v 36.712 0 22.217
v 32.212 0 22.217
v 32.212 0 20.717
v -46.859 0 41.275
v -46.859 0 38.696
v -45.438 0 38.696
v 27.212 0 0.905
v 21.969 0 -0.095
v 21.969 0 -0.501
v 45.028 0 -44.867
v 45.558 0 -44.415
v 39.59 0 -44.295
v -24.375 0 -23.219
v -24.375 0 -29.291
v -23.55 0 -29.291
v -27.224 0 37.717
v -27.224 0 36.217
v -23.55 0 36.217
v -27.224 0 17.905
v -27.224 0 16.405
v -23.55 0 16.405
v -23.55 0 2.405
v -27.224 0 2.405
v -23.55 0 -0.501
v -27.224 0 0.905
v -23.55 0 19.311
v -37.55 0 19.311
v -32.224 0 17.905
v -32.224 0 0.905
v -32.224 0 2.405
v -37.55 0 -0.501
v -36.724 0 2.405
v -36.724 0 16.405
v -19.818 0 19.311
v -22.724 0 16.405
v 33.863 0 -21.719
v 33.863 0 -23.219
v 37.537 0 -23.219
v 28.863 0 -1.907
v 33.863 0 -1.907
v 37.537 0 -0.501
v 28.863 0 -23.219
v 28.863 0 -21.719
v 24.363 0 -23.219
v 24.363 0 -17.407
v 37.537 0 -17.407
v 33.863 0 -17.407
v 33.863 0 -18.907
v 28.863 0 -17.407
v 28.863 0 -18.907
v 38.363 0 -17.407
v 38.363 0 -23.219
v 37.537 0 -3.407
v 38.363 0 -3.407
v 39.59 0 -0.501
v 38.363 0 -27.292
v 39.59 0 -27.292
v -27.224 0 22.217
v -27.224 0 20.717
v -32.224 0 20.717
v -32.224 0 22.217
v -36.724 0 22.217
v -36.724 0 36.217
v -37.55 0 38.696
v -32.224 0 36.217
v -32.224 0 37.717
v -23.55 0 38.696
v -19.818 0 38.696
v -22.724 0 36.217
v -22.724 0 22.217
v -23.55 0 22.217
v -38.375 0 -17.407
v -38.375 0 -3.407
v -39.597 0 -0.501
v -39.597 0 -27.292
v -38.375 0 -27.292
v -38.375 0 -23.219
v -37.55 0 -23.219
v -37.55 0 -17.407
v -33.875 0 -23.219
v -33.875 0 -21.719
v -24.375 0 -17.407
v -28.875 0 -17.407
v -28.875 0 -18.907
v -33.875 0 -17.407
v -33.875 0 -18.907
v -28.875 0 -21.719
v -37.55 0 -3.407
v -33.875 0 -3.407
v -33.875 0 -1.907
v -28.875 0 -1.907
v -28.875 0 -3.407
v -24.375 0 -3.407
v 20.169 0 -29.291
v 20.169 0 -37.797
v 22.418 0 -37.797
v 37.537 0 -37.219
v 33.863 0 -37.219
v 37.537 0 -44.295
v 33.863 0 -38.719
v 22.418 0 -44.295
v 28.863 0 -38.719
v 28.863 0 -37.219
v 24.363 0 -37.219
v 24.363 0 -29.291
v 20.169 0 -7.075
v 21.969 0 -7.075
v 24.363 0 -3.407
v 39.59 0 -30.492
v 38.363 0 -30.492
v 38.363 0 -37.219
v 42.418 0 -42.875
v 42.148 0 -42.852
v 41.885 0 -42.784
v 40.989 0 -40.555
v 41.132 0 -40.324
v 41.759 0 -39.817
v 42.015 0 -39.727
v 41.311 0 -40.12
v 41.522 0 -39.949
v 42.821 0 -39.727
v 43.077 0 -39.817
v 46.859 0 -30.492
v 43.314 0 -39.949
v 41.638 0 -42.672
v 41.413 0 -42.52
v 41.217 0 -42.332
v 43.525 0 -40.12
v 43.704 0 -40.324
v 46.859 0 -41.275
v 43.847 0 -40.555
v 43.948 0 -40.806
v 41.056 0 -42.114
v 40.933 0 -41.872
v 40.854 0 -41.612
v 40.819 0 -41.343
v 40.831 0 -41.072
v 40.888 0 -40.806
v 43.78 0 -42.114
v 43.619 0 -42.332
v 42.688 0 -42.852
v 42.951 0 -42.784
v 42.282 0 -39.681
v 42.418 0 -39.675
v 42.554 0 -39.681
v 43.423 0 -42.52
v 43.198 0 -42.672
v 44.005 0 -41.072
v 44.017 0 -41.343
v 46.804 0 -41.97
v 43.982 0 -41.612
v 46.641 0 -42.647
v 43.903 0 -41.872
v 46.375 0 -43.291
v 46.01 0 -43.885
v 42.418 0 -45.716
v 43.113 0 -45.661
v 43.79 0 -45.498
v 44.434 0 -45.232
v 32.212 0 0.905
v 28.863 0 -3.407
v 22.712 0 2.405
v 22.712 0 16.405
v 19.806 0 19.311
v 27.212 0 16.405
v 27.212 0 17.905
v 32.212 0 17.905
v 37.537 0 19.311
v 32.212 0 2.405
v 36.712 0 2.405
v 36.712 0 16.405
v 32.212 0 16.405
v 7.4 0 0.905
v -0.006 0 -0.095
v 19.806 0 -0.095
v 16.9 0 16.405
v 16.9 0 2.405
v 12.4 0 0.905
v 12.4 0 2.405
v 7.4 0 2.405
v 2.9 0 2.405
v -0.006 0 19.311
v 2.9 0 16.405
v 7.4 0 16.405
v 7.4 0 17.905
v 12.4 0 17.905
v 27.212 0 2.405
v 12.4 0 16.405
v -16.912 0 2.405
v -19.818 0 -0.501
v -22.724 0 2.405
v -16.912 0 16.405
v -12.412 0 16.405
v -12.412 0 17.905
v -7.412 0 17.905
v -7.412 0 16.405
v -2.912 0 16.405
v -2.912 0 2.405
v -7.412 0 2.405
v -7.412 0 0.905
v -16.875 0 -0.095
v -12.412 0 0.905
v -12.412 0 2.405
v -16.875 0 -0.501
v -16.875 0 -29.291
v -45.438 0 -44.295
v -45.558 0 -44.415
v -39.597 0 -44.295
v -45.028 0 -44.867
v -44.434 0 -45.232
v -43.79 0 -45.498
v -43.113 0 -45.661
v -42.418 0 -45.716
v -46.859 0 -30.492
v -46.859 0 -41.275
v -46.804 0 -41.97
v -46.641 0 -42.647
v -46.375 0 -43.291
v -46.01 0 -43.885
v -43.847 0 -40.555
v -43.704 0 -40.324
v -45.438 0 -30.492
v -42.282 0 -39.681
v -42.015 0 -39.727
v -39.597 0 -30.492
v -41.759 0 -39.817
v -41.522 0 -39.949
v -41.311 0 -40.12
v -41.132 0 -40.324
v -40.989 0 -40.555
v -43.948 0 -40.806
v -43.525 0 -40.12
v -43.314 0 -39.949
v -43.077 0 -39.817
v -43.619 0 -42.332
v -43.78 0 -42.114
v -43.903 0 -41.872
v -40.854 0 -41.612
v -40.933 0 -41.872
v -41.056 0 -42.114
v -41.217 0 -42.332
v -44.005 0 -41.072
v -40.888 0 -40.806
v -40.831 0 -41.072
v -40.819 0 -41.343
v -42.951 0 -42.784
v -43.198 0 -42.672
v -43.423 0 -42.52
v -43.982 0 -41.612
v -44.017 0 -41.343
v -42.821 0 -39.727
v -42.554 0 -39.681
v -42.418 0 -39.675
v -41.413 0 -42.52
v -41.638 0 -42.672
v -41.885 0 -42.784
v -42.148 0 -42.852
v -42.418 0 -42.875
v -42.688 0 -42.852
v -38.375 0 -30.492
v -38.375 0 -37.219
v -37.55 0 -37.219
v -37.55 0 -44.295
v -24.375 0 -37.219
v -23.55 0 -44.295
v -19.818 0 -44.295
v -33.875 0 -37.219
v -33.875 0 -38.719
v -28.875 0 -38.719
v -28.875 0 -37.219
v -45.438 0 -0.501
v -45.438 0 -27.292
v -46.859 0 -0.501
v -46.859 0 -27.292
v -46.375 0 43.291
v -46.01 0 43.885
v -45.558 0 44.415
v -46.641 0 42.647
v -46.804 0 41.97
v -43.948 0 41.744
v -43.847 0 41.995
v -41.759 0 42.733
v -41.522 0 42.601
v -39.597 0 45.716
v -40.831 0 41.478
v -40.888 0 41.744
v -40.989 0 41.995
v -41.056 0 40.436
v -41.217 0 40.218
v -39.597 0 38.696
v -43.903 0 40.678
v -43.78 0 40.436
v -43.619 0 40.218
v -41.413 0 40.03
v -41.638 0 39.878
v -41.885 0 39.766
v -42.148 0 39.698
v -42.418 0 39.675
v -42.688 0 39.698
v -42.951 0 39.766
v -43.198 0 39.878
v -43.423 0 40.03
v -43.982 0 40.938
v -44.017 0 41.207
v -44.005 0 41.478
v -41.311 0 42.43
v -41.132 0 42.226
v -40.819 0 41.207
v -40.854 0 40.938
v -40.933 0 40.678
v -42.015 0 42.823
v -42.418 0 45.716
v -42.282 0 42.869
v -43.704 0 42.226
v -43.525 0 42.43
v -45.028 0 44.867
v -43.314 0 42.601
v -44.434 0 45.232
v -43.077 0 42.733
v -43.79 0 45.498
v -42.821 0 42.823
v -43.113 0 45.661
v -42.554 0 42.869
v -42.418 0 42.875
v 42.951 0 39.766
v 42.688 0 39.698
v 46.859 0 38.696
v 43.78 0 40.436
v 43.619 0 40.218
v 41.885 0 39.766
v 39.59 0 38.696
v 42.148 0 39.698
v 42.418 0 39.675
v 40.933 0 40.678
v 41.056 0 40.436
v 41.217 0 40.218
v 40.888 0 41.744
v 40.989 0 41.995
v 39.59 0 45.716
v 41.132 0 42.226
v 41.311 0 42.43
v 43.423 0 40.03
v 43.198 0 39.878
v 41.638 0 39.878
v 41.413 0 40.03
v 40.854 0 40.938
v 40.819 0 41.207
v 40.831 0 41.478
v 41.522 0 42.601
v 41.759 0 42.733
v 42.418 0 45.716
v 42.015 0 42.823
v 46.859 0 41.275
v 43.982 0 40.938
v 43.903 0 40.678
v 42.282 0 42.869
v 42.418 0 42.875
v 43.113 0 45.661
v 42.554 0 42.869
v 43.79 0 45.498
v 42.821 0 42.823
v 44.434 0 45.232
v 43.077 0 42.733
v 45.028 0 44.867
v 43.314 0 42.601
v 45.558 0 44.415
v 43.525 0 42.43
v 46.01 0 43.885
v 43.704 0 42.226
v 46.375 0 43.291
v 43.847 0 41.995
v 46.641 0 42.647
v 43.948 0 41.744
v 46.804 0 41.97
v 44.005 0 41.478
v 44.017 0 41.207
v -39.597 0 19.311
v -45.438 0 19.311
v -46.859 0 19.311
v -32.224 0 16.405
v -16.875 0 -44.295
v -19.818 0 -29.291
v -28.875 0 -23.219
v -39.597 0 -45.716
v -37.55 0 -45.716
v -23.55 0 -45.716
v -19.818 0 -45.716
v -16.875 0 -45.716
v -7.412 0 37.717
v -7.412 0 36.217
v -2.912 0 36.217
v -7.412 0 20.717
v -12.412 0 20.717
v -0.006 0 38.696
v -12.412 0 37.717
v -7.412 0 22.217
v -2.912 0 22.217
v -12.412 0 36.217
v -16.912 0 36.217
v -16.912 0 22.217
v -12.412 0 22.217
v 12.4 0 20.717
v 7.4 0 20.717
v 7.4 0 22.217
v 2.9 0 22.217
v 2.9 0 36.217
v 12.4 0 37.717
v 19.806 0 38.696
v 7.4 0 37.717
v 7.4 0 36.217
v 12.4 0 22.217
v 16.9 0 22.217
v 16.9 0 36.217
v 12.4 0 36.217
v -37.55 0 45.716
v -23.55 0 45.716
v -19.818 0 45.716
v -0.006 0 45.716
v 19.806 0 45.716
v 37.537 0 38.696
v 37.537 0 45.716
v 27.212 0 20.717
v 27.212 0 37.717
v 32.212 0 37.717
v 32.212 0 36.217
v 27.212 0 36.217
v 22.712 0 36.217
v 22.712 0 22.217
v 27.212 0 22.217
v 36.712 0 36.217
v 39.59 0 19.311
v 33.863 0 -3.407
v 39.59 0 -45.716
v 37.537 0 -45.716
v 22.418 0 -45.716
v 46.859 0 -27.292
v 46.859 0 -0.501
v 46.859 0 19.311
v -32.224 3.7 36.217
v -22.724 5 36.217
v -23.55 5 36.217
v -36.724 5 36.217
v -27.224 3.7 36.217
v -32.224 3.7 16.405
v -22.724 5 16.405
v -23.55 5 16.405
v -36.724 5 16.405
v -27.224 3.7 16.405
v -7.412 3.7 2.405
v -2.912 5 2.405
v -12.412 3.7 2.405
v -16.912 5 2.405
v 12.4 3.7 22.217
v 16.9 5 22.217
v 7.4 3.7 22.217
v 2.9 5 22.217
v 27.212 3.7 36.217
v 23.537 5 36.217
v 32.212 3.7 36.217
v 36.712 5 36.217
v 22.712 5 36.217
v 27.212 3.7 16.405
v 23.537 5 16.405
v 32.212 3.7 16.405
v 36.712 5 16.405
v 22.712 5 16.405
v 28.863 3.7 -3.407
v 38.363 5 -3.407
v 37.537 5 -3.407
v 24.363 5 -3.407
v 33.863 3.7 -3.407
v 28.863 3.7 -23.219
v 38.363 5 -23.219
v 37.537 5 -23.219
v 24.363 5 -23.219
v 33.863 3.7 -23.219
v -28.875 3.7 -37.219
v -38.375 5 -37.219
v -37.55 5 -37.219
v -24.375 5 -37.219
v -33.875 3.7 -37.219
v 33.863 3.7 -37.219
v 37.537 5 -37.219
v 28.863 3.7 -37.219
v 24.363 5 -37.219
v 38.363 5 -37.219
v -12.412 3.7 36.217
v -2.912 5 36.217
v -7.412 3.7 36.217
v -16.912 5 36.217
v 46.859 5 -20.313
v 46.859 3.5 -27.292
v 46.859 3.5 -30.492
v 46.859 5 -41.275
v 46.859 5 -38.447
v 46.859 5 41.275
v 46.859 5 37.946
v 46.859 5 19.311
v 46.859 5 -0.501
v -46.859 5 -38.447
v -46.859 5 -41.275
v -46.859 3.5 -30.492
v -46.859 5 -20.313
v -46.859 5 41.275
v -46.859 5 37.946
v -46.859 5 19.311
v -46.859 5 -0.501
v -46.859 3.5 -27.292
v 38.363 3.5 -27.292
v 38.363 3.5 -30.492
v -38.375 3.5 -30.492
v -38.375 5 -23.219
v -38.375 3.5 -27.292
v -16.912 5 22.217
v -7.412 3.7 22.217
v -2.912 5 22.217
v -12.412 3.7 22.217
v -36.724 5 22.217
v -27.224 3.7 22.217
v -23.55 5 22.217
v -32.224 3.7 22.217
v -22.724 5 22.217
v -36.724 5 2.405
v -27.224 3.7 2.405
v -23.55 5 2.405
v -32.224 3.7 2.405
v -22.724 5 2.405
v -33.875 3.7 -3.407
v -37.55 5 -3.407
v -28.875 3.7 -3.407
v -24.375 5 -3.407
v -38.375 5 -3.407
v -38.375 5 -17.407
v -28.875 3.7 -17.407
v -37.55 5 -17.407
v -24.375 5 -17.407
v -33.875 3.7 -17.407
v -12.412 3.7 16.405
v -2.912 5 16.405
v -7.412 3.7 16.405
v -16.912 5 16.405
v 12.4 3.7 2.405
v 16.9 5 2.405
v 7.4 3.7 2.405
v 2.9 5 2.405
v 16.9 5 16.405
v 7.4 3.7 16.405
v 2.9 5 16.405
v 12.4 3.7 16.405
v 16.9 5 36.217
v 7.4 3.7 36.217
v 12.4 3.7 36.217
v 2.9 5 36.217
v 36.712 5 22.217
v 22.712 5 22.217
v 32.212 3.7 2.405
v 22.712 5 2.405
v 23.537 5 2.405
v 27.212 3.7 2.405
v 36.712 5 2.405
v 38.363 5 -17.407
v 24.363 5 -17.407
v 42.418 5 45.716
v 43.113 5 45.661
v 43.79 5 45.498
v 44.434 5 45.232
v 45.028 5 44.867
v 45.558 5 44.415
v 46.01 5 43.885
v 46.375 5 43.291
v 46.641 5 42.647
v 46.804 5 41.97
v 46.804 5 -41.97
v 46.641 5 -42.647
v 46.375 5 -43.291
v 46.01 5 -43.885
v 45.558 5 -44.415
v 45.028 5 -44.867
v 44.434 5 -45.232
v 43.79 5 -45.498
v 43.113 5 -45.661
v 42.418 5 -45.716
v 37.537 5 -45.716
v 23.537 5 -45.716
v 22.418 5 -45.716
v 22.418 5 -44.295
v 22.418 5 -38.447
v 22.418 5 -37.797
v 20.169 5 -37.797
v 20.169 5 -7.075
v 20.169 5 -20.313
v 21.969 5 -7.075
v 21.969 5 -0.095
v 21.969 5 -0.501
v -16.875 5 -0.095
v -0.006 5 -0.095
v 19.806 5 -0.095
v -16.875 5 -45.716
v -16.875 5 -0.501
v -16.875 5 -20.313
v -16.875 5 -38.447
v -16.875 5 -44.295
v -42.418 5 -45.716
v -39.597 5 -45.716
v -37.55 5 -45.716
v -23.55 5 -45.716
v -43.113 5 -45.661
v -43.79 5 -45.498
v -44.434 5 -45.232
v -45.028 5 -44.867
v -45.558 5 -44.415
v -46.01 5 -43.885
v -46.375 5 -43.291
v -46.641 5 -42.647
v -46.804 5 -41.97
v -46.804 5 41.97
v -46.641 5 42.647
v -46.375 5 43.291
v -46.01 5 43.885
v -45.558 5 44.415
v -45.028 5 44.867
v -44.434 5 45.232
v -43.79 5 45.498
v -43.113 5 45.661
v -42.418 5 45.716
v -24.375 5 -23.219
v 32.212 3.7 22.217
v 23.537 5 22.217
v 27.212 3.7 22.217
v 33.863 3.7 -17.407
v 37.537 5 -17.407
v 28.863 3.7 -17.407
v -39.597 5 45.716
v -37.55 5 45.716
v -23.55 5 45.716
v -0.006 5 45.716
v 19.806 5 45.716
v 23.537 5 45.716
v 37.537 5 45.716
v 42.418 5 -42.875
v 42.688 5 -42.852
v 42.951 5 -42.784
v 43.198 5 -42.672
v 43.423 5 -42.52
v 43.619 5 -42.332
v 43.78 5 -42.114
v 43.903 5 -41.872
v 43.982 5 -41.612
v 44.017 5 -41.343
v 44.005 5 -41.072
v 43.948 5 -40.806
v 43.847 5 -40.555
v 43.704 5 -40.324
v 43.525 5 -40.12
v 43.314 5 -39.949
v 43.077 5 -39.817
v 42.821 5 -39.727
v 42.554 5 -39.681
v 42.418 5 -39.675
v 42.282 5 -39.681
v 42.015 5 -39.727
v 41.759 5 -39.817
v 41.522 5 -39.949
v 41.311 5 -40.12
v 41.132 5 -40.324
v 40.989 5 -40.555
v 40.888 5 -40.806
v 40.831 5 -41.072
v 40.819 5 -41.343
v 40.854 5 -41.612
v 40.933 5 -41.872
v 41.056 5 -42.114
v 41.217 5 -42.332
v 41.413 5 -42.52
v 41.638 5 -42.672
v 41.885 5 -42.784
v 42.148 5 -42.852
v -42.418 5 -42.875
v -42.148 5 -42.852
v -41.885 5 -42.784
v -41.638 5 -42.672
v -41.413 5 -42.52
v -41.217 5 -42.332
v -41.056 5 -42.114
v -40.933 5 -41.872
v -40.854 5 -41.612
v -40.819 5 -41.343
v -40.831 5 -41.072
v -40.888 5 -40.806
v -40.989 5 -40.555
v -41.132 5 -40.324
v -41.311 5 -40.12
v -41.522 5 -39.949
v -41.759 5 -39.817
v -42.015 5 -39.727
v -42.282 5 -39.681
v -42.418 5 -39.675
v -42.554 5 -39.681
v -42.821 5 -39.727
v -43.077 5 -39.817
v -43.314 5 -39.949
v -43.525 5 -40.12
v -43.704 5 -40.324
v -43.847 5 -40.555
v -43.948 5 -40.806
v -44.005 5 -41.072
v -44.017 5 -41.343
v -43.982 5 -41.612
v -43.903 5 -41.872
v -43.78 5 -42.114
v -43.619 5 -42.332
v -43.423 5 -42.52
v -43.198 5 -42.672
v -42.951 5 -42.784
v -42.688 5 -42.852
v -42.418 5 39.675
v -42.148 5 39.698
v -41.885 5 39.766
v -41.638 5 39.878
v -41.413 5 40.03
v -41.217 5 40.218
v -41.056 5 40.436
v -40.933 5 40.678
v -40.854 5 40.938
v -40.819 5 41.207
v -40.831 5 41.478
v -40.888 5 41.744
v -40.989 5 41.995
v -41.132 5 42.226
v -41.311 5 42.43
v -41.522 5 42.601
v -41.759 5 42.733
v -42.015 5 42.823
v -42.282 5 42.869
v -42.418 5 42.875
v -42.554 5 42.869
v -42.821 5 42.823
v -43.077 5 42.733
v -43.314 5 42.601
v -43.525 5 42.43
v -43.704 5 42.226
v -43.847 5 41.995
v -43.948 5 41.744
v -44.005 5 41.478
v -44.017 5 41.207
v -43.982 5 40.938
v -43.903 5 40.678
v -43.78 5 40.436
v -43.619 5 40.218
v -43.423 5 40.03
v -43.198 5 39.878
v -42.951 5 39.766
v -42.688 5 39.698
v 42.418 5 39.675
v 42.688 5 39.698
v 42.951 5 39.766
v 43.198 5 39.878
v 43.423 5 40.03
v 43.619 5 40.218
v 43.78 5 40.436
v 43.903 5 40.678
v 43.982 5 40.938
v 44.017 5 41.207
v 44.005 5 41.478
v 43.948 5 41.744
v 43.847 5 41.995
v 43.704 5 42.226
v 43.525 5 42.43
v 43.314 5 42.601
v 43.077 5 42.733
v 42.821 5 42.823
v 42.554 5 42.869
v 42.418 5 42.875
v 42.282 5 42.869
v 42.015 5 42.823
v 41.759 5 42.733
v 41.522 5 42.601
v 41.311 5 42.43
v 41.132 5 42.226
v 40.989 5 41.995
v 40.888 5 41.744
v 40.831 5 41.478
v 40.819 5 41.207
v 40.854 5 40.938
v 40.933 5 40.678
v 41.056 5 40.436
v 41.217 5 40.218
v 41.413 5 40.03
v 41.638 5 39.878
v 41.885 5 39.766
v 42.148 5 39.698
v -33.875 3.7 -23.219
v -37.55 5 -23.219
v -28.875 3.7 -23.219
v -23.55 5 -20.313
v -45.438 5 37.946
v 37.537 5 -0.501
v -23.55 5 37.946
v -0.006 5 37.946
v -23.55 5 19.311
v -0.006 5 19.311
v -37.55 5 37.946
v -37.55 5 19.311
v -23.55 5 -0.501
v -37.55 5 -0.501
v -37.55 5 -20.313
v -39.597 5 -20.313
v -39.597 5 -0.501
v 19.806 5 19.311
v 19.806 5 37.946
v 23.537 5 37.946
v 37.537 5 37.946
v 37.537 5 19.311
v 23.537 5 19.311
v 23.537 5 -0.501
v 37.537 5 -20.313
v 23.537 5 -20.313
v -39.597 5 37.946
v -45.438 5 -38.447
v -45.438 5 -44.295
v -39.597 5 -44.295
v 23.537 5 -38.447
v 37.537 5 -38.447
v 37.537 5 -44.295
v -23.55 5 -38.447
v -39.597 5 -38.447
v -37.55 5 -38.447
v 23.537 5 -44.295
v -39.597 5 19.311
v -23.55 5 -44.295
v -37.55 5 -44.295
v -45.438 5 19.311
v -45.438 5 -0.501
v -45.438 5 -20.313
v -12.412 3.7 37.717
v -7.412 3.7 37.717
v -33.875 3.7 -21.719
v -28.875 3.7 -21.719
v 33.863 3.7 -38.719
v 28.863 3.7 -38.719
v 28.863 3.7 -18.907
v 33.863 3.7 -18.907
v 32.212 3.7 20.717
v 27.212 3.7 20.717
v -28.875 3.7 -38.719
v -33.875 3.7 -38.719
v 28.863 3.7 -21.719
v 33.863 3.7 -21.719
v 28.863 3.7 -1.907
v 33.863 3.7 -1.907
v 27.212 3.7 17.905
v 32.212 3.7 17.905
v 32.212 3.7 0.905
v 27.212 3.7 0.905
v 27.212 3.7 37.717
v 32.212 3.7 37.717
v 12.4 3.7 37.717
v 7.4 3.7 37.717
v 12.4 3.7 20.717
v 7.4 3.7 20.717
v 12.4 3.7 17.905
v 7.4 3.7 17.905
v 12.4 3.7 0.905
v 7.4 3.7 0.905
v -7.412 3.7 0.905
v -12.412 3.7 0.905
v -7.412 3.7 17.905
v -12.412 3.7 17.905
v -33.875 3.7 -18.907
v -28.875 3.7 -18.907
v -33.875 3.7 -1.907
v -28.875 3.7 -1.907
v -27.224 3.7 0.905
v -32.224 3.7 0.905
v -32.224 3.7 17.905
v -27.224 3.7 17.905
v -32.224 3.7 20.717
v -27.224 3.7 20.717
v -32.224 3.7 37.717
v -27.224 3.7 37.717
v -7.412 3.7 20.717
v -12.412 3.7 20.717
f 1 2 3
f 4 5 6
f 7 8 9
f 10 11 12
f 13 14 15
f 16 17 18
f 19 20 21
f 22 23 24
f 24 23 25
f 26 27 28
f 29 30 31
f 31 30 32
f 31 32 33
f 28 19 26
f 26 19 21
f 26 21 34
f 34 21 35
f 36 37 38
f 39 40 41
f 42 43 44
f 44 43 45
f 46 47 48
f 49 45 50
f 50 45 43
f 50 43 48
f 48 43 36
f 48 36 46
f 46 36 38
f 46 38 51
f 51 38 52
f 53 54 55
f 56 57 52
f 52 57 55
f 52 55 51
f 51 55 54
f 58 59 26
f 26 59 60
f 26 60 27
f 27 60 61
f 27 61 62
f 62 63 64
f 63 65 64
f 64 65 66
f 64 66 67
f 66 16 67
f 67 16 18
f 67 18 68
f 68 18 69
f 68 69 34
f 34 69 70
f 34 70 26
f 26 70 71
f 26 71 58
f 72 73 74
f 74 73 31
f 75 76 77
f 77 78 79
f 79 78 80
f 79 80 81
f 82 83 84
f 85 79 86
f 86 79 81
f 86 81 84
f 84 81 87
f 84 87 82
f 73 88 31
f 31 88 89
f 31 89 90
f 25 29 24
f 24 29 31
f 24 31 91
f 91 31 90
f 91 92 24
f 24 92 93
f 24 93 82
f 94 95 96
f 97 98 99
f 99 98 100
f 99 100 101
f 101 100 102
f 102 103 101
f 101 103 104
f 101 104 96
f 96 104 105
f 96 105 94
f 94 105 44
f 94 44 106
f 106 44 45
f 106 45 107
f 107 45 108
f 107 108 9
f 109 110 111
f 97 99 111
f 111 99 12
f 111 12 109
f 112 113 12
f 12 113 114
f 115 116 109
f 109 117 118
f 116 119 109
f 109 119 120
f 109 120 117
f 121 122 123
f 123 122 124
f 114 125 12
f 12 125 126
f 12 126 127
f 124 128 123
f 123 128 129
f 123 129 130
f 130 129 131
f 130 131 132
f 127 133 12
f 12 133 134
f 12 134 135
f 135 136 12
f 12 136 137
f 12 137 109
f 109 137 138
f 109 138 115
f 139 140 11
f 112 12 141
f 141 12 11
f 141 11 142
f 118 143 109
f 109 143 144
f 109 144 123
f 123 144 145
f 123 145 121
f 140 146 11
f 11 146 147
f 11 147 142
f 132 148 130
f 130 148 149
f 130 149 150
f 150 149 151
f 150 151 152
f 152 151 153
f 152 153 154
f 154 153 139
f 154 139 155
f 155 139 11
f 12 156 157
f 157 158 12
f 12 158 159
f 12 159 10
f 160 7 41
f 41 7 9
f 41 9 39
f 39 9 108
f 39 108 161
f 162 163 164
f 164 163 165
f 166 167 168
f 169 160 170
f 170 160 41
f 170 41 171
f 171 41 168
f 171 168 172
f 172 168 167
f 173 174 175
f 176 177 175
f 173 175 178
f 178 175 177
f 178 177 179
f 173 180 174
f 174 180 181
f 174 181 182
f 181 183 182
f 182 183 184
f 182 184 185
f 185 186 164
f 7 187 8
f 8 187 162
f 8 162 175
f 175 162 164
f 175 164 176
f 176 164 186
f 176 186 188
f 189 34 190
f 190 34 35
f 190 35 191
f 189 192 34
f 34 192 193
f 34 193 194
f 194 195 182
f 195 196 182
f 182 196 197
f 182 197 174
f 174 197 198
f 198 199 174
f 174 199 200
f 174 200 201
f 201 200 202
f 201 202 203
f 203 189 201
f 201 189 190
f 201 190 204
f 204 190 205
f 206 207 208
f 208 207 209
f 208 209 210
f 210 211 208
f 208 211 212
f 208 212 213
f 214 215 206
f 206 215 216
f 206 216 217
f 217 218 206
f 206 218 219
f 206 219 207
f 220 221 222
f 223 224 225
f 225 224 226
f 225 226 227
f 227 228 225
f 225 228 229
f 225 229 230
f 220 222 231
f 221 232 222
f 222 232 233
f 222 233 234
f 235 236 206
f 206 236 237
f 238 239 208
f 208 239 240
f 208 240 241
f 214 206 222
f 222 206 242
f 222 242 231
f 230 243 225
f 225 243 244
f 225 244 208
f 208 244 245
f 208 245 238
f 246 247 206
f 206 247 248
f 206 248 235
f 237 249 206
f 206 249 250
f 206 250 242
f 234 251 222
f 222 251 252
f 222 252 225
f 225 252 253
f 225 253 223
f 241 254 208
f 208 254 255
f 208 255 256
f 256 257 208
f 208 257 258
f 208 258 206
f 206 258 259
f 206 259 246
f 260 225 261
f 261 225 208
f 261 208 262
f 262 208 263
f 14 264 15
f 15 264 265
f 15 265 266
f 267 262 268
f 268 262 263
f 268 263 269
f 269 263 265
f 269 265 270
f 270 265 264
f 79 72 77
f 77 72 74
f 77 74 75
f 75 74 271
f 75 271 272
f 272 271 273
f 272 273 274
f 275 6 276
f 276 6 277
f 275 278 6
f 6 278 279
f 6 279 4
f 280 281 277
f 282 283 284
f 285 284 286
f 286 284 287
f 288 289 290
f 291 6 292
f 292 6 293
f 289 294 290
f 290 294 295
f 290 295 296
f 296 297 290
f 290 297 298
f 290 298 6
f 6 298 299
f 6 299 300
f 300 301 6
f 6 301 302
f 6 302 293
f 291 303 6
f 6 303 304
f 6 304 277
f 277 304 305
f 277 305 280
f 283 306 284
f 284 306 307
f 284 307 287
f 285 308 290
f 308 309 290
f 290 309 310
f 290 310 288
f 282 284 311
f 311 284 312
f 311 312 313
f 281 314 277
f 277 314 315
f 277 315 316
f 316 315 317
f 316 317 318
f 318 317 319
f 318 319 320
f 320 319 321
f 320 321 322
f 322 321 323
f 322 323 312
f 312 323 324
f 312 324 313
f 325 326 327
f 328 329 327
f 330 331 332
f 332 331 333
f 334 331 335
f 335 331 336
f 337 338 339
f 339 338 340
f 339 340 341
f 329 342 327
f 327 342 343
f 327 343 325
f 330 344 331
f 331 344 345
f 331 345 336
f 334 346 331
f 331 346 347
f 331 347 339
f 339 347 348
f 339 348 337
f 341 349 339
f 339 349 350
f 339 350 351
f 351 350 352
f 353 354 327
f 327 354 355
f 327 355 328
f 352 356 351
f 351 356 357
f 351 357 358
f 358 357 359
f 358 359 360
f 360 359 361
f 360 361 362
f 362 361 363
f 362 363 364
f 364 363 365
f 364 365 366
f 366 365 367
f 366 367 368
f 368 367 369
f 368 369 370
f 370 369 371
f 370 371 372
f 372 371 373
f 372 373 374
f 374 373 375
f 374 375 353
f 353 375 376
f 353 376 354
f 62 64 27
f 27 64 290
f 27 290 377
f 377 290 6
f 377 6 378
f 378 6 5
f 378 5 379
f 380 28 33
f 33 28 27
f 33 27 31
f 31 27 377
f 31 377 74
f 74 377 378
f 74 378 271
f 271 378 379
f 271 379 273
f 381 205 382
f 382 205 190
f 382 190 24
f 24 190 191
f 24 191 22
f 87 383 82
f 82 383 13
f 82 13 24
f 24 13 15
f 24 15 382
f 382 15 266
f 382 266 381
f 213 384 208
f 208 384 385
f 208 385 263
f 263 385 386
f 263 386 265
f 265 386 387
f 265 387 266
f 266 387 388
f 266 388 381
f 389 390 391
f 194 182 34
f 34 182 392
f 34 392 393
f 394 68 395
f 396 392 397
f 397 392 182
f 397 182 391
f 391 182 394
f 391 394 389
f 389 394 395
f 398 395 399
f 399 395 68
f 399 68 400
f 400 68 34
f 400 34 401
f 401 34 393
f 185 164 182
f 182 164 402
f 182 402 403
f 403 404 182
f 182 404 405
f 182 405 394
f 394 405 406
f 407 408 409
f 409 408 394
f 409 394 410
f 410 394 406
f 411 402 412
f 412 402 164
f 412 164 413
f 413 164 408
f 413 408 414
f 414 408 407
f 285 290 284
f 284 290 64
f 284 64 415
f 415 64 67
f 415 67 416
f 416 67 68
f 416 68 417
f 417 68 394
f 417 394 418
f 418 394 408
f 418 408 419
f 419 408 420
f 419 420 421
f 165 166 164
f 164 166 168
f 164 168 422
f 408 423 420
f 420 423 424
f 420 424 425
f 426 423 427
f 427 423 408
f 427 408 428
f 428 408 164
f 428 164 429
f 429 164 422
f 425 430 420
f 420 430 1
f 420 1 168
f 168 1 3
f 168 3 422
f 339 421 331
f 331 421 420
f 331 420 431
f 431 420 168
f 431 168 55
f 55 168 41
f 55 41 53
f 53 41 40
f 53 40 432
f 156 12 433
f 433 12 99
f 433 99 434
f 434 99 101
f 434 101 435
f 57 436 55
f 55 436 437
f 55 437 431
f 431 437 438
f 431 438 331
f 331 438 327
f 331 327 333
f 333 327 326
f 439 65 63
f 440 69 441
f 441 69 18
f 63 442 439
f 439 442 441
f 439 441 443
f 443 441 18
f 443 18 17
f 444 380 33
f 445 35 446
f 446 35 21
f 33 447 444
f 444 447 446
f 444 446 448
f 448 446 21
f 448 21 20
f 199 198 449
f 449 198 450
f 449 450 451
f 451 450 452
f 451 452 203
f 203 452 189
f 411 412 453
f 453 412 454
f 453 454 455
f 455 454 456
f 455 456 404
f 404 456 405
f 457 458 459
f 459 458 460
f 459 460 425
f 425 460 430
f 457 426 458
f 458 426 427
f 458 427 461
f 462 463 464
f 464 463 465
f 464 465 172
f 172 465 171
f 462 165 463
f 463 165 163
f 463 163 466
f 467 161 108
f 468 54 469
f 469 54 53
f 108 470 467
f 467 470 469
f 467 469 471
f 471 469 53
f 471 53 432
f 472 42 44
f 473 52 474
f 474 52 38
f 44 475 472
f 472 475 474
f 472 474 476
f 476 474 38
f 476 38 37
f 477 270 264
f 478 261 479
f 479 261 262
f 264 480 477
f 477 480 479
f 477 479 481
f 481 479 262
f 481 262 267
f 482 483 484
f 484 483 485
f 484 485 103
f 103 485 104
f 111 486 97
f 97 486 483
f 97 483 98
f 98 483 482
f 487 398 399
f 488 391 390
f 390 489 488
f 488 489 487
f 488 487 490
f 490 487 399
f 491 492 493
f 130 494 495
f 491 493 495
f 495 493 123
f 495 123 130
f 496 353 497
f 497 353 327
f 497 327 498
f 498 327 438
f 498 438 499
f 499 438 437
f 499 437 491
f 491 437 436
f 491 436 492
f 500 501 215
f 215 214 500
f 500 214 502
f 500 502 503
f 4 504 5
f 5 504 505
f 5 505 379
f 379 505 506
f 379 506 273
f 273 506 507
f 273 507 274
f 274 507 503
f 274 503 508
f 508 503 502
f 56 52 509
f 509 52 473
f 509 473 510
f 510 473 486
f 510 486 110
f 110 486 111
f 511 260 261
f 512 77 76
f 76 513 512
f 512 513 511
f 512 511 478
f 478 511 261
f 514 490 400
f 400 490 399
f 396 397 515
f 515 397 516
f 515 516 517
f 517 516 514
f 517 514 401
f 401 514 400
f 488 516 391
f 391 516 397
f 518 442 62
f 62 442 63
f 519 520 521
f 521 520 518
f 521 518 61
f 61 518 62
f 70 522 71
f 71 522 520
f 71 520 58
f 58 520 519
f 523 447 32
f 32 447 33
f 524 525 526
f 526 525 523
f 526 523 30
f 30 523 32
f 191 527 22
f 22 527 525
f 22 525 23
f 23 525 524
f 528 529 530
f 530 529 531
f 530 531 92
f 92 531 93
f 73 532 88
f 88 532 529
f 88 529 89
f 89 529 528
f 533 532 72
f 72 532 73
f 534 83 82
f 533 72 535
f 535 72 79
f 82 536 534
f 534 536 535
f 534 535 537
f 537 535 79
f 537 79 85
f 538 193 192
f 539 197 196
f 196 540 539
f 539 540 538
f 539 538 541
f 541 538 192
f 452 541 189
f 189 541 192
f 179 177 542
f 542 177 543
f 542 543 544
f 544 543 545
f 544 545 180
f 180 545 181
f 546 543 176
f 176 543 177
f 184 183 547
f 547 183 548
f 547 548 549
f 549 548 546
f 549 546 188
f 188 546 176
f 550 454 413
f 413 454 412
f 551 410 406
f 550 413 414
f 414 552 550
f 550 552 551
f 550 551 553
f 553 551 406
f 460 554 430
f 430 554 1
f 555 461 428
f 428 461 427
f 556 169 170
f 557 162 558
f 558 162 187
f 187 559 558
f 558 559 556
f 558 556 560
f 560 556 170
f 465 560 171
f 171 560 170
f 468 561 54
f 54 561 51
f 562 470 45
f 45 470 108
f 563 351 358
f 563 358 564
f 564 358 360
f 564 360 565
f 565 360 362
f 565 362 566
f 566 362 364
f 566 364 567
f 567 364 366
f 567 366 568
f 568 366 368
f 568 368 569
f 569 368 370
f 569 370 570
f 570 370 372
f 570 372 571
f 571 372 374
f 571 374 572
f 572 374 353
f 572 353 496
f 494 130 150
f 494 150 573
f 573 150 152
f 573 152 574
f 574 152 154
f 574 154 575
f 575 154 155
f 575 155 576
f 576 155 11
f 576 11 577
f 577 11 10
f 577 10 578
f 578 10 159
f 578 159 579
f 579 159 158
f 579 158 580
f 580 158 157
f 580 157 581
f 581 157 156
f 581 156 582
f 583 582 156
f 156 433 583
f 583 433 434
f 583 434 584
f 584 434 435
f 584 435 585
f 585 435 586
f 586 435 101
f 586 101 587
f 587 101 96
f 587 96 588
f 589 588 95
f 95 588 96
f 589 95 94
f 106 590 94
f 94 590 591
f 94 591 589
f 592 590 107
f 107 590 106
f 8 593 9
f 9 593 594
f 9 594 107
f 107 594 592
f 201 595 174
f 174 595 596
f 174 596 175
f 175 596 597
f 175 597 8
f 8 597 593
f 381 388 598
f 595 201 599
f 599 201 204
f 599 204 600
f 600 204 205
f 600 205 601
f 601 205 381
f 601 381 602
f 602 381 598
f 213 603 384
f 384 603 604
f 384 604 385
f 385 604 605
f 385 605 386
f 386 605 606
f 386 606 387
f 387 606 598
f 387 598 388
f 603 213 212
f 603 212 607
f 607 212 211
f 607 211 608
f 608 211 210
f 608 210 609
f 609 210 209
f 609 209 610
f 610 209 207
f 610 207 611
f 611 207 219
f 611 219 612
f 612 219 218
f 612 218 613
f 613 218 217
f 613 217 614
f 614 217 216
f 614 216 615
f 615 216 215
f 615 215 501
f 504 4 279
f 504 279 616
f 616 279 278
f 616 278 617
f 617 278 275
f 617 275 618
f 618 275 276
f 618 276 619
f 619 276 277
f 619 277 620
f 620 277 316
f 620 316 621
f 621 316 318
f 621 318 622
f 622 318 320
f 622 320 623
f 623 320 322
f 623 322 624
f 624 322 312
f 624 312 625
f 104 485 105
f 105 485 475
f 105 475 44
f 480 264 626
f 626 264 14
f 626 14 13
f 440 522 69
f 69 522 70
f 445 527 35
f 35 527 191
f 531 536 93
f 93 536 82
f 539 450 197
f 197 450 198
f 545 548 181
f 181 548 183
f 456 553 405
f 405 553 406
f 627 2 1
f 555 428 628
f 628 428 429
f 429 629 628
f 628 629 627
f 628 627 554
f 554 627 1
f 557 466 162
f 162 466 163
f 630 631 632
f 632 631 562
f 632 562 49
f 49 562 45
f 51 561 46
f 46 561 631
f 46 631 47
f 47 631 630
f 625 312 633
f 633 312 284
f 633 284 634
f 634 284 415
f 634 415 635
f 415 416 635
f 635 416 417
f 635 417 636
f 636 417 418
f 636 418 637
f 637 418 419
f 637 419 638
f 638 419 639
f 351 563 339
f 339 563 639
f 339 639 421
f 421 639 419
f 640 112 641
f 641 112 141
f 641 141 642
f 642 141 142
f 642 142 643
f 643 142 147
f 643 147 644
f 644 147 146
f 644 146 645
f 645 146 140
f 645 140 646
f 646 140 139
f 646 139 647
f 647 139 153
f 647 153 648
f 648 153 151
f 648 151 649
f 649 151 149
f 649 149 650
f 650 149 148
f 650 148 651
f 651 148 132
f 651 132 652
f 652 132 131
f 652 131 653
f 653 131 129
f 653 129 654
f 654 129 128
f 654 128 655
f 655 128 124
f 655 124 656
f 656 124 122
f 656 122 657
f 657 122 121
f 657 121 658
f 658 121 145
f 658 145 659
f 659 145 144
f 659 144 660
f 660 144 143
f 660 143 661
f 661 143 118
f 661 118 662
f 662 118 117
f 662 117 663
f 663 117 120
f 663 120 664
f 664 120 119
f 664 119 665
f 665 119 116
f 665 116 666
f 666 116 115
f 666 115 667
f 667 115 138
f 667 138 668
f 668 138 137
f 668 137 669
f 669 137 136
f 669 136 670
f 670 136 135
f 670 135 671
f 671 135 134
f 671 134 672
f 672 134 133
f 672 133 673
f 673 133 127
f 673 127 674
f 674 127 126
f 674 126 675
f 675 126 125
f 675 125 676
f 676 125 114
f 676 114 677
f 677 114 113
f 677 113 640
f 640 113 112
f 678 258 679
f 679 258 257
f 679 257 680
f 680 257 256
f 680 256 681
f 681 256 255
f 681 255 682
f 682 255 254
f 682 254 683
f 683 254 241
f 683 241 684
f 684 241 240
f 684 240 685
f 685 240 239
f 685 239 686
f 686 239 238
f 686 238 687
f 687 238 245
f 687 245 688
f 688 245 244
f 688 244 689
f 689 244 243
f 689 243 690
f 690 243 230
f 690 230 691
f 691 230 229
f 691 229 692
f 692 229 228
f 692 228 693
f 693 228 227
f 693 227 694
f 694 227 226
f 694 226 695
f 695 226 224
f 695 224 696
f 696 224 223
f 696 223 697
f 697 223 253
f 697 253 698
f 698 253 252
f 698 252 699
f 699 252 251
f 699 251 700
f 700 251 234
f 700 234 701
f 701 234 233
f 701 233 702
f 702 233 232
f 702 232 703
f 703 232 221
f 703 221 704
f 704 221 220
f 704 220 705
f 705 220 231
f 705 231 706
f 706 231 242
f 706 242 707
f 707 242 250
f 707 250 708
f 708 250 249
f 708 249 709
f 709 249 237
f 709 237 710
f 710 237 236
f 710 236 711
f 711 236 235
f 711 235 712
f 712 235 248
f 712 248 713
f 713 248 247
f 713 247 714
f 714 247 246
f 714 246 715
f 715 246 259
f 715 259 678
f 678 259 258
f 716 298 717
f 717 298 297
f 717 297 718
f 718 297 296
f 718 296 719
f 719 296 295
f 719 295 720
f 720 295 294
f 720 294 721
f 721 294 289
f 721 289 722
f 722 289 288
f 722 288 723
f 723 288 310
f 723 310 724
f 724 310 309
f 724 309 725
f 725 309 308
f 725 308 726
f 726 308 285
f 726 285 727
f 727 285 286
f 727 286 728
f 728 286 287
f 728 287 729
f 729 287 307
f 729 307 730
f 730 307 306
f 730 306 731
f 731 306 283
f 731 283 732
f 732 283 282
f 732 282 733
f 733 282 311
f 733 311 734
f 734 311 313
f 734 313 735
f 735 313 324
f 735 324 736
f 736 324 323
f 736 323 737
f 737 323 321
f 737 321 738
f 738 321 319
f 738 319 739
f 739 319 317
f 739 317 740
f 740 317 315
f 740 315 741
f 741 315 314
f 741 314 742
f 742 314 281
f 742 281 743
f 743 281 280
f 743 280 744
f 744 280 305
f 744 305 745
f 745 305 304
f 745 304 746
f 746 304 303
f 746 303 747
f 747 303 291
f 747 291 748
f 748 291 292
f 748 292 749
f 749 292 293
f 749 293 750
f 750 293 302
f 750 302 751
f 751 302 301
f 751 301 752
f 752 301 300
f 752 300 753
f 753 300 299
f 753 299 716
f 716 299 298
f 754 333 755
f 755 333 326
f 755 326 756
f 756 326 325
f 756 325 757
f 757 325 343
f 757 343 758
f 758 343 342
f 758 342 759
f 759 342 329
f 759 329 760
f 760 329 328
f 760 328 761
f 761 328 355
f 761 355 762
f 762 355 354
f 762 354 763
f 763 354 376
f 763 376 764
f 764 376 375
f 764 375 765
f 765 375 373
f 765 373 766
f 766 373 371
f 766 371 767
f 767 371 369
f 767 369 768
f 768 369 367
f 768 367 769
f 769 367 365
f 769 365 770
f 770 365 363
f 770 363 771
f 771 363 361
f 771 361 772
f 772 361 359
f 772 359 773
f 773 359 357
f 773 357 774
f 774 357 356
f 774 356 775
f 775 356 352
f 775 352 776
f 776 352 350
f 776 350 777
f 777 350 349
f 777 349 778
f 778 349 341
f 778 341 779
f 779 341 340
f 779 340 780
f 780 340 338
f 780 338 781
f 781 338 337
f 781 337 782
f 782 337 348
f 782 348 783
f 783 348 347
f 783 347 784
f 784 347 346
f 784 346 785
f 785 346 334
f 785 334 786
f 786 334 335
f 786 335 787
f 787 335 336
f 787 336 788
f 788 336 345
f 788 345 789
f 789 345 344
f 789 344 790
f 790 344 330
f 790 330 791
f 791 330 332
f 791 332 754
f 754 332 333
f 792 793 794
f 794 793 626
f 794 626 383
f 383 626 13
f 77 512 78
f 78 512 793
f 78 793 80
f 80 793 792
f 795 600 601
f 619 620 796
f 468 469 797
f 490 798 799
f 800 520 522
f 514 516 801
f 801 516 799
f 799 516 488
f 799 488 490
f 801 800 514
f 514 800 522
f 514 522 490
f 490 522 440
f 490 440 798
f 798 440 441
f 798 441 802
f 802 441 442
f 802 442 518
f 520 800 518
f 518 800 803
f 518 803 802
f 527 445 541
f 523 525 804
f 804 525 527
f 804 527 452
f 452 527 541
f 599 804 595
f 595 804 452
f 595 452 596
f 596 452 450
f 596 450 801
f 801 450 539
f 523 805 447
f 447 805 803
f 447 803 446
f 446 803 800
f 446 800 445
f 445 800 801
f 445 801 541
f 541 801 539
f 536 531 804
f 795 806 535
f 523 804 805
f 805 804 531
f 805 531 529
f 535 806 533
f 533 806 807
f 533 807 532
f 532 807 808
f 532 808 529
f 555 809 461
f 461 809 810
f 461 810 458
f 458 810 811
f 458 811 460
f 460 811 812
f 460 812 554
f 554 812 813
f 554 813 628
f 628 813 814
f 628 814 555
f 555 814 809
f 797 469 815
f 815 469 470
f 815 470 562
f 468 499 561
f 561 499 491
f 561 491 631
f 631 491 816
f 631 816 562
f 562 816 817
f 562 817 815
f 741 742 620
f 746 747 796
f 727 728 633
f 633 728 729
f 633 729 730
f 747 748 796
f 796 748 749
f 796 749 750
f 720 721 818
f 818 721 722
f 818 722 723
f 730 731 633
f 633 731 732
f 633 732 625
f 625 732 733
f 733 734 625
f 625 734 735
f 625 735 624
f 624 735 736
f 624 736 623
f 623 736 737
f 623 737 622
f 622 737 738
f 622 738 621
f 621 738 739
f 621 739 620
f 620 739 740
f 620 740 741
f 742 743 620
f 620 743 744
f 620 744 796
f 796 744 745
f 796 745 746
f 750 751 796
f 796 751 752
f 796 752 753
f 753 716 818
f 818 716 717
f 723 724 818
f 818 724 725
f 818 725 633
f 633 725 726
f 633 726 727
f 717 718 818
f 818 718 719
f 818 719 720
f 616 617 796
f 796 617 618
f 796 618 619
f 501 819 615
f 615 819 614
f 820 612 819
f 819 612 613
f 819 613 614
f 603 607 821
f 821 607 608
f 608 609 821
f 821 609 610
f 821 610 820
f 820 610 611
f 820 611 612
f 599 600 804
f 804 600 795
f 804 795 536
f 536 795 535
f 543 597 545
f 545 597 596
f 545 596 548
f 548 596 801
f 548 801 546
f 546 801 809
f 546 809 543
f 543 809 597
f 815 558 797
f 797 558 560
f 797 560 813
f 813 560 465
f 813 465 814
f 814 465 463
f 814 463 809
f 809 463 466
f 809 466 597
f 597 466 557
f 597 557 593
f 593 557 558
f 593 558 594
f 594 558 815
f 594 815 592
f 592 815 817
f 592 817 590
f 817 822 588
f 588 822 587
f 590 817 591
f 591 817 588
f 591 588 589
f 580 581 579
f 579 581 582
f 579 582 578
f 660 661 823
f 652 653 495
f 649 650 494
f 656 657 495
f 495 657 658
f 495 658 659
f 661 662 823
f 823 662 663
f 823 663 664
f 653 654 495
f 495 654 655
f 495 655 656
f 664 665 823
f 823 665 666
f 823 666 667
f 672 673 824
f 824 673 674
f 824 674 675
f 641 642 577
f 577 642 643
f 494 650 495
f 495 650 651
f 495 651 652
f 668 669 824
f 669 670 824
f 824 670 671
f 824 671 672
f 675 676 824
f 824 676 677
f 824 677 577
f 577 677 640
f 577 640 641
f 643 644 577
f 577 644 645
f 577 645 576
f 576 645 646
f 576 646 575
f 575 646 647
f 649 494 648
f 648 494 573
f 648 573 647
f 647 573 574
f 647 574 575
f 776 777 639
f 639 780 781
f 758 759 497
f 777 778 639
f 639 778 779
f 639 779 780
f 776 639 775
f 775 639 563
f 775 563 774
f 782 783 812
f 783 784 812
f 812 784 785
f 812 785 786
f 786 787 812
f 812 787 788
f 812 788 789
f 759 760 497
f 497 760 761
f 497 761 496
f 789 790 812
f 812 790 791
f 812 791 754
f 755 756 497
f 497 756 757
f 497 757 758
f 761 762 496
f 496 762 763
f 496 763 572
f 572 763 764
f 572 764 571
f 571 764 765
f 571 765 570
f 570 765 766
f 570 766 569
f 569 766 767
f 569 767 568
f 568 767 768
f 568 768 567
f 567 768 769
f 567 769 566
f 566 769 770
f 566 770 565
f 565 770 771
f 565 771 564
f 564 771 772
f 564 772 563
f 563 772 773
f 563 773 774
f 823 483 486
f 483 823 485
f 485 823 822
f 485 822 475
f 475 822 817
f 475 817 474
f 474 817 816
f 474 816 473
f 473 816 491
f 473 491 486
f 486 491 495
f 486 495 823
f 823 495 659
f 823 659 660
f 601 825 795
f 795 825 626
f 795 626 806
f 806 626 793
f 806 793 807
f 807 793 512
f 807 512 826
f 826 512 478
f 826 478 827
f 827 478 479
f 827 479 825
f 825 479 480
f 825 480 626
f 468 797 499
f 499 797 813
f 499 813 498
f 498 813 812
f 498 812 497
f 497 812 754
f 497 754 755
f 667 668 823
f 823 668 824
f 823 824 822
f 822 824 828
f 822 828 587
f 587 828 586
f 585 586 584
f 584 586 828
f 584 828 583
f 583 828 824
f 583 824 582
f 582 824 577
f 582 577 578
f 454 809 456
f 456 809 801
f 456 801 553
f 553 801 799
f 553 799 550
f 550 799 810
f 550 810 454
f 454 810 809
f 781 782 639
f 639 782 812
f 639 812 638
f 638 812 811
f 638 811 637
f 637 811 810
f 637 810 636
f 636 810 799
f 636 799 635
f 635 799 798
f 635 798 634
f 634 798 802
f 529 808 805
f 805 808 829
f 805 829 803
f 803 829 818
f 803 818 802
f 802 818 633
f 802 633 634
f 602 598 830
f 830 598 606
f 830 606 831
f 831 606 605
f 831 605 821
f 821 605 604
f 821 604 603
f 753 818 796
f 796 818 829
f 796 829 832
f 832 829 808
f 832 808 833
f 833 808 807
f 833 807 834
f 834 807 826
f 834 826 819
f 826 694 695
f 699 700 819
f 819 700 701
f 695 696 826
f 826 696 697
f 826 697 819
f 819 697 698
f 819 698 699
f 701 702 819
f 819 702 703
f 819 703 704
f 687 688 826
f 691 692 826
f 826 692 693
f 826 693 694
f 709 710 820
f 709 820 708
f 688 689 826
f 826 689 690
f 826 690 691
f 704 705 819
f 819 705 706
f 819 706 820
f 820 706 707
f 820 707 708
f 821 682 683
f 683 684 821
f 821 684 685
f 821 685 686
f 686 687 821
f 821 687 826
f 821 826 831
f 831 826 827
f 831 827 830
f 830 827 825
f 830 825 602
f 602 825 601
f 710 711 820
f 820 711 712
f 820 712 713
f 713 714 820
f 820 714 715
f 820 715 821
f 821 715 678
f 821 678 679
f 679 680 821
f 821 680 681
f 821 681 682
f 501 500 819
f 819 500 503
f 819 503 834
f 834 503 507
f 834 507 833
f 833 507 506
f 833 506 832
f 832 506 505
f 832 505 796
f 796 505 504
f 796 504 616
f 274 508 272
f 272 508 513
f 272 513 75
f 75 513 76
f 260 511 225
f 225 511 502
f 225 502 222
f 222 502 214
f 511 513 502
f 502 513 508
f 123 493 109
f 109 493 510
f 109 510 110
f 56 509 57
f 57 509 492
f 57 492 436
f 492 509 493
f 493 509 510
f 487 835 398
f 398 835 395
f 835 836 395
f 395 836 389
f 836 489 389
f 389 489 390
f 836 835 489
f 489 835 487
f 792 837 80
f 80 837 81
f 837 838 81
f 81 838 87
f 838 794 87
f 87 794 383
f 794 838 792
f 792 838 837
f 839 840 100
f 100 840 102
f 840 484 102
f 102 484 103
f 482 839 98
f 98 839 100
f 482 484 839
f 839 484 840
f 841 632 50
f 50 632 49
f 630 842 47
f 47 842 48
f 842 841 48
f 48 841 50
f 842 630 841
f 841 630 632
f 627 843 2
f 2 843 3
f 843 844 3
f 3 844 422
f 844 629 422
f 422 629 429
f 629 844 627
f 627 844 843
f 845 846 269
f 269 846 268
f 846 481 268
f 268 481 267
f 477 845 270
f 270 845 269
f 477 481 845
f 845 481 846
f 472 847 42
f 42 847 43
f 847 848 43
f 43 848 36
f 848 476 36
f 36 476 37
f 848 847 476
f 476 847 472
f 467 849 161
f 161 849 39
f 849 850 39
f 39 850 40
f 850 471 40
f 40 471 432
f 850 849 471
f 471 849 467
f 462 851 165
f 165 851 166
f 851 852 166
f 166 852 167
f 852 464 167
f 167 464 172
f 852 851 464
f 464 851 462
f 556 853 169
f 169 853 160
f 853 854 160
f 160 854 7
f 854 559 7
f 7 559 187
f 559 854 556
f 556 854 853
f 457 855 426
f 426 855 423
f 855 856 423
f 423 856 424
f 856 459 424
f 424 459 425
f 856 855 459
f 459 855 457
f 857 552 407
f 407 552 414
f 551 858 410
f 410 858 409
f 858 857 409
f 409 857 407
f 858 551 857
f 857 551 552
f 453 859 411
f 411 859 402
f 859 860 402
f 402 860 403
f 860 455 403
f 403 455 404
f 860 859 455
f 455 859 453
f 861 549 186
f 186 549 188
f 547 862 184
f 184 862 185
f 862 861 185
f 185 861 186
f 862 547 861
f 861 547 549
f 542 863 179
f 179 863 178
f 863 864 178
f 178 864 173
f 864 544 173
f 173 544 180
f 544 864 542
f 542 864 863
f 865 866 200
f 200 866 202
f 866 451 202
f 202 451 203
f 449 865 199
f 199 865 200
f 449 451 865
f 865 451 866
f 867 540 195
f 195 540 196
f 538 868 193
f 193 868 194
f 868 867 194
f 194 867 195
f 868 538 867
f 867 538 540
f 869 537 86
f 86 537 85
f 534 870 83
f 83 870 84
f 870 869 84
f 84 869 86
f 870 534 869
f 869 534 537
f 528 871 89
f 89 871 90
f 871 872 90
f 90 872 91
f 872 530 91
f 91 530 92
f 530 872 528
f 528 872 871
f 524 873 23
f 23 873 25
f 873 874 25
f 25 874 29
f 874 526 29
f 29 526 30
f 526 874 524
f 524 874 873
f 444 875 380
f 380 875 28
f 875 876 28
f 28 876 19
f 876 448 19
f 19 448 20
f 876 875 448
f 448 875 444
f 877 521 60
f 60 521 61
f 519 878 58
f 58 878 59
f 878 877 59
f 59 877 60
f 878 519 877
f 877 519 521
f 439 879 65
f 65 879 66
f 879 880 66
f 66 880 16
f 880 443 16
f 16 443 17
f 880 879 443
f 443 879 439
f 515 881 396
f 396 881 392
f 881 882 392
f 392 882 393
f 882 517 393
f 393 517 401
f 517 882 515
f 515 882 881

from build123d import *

# Parameters (mm, degrees)
SKETCH2_R           = 1.6
BOSS_EXTRUDE1_DEPTH = 5
CUT_EXTRUDE1_DEPTH  = 3.5
SKETCH4_W           = 2.5
SKETCH4_H           = 1.5
CUT_EXTRUDE2_DEPTH  = 3.7


with BuildPart() as part:
    # Sketch2 → Boss-Extrude1 (new body)
    with BuildSketch(Plane(origin=(0, 0, 0), x_dir=(1, 0, 0), z_dir=(0, 1, 0))):
        with BuildLine():
            Line((-46.858540632, -41.275), (-46.858540632, 41.275))
            ThreePointArc((-46.858540632, 41.275), (-45.557936393, 44.414936393), (-42.418, 45.715540632))
            Line((-42.418, 45.715540632), (-16.875382857, 45.715540632))
            Line((-16.875382857, 45.715540632), (-16.875382857, 30.218907102))
            Line((-16.875382857, 30.218907102), (-16.875382857, 0.094907102))
            Line((-16.875382857, 0.094907102), (-9.912382857, 0.094907102))
            Line((-9.912382857, 0.094907102), (21.96872062, 0.094907102))
            Line((21.96872062, 0.094907102), (21.96872062, 7.075))
            Line((21.96872062, 7.075), (20.16872062, 7.075))
            Line((20.16872062, 7.075), (20.16872062, 9.575))
            Line((20.16872062, 9.575), (20.16872062, 37.797317828))
            Line((20.16872062, 37.797317828), (22.418, 37.797317828))
            Line((22.418, 37.797317828), (22.418, 39.575))
            Line((22.418, 39.575), (22.418, 41.275))
            Line((22.418, 41.275), (22.418, 45.715540632))
            Line((22.418, 45.715540632), (42.418, 45.715540632))
            ThreePointArc((42.418, 45.715540632), (45.557936393, 44.414936393), (46.858540632, 41.275))
            Line((46.858540632, 41.275), (46.858540632, -41.275))
            ThreePointArc((46.858540632, -41.275), (45.557936393, -44.414936393), (42.418, -45.715540632))
            Line((42.418, -45.715540632), (-42.418, -45.715540632))
            ThreePointArc((-42.418, -45.715540632), (-45.557936393, -44.414936393), (-46.858540632, -41.275))
        make_face()
        with Locations(Location((42.418, 41.275, 0), (0, 0, 270))):
            Circle(SKETCH2_R, mode=Mode.SUBTRACT)
        with Locations(Location((-42.418, 41.275, 0), (0, 0, 270))):
            Circle(SKETCH2_R, mode=Mode.SUBTRACT)
        with Locations(Location((-42.418, -41.275, 0), (0, 0, 270))):
            Circle(SKETCH2_R, mode=Mode.SUBTRACT)
        with Locations(Location((42.418, -41.275, 0), (0, 0, 270))):
            Circle(SKETCH2_R, mode=Mode.SUBTRACT)
        Polygon((-31.375382857, 37.218907102), (-38.375382857, 37.218907102), (-38.375382857, 23.218907102), (-24.375382857, 23.218907102), (-24.375382857, 37.218907102), align=None, mode=Mode.SUBTRACT)
        Polygon((-38.375382857, 10.406907102), (-38.375382857, 17.406907102), (-24.375382857, 17.406907102), (-24.375382857, 3.406907102), (-38.375382857, 3.406907102), align=None, mode=Mode.SUBTRACT)
        Polygon((-36.724382857, -9.405092898), (-36.724382857, -2.405092898), (-22.724382857, -2.405092898), (-22.724382857, -16.405092898), (-36.724382857, -16.405092898), align=None, mode=Mode.SUBTRACT)
        Polygon((-36.724382857, -29.217092898), (-36.724382857, -22.217092898), (-22.724382857, -22.217092898), (-22.724382857, -36.217092898), (-36.724382857, -36.217092898), align=None, mode=Mode.SUBTRACT)
        Polygon((-9.912382857, -22.217092898), (-2.912382857, -22.217092898), (-2.912382857, -36.217092898), (-16.912382857, -36.217092898), (-16.912382857, -22.217092898), align=None, mode=Mode.SUBTRACT)
        Polygon((-9.912382857, -16.405092898), (-2.912382857, -16.405092898), (-2.912382857, -2.405092898), (-16.912382857, -2.405092898), (-16.912382857, -16.405092898), align=None, mode=Mode.SUBTRACT)
        Polygon((9.899617143, -2.405092898), (2.899617143, -2.405092898), (2.899617143, -16.405092898), (16.899617143, -16.405092898), (16.899617143, -2.405092898), align=None, mode=Mode.SUBTRACT)
        Polygon((9.899617143, -22.217092898), (2.899617143, -22.217092898), (2.899617143, -36.217092898), (16.899617143, -36.217092898), (16.899617143, -22.217092898), align=None, mode=Mode.SUBTRACT)
        Polygon((36.711617143, -29.217092898), (36.711617143, -22.217092898), (22.711617143, -22.217092898), (22.711617143, -36.217092898), (36.711617143, -36.217092898), align=None, mode=Mode.SUBTRACT)
        Polygon((29.711617143, -2.405092898), (22.711617143, -2.405092898), (22.711617143, -16.405092898), (36.711617143, -16.405092898), (36.711617143, -2.405092898), align=None, mode=Mode.SUBTRACT)
        Polygon((38.362617143, 10.406907102), (38.362617143, 17.406907102), (24.362617143, 17.406907102), (24.362617143, 3.406907102), (38.362617143, 3.406907102), align=None, mode=Mode.SUBTRACT)
        Polygon((38.362617143, 30.218907102), (38.362617143, 23.218907102), (24.362617143, 23.218907102), (24.362617143, 37.218907102), (38.362617143, 37.218907102), align=None, mode=Mode.SUBTRACT)
    extrude(amount=BOSS_EXTRUDE1_DEPTH)

    # Sketch3 → Cut-Extrude1 (cut)
    with BuildSketch(Plane.XZ):
        Polygon((38.362617143, -30.492), (42.418, -30.492), (46.218, -30.492), (46.858540632, -30.492), (46.858540632, -27.292), (46.218, -27.292), (38.362617143, -27.292), align=None)
        Polygon((-46.218, -27.292), (-46.858540632, -27.292), (-46.858540632, -30.492), (-46.218, -30.492), (-42.418, -30.492), (-38.375382857, -30.492), (-38.375382857, -27.292), align=None)
    extrude(amount=-CUT_EXTRUDE1_DEPTH, mode=Mode.SUBTRACT)

    # Sketch4 → Cut-Extrude2 (cut)
    with BuildSketch(Plane.XZ):
        with Locations((32.612617143, -37.968907102)):
            Rectangle(SKETCH4_W, SKETCH4_H)
        with Locations((30.112617143, -37.968907102)):
            Rectangle(SKETCH4_W, SKETCH4_H)
        with Locations((32.612617143, -22.468907102)):
            Rectangle(SKETCH4_W, SKETCH4_H)
        with Locations((30.112617143, -22.468907102)):
            Rectangle(SKETCH4_W, SKETCH4_H)
        with Locations((32.612617143, -2.656907102)):
            Rectangle(SKETCH4_W, SKETCH4_H)
        with Locations((30.112617143, -18.156907102)):
            Rectangle(SKETCH4_W, SKETCH4_H)
        with Locations((32.612617143, -18.156907102)):
            Rectangle(SKETCH4_W, SKETCH4_H)
        with Locations((30.112617143, -2.656907102)):
            Rectangle(SKETCH4_W, SKETCH4_H)
        with Locations((30.961617143, 1.655092898)):
            Rectangle(SKETCH4_W, SKETCH4_H)
        with Locations((28.461617143, 1.655092898)):
            Rectangle(SKETCH4_W, SKETCH4_H)
        with Locations((30.961617143, 17.155092898)):
            Rectangle(SKETCH4_W, SKETCH4_H)
        with Locations((28.461617143, 17.155092898)):
            Rectangle(SKETCH4_W, SKETCH4_H)
        with Locations((30.961617143, 21.467092898)):
            Rectangle(SKETCH4_W, SKETCH4_H)
        with Locations((28.461617143, 21.467092898)):
            Rectangle(SKETCH4_W, SKETCH4_H)
        with Locations((30.961617143, 36.967092898)):
            Rectangle(SKETCH4_W, SKETCH4_H)
        with Locations((28.461617143, 36.967092898)):
            Rectangle(SKETCH4_W, SKETCH4_H)
        with Locations((11.149617143, 36.967092898)):
            Rectangle(SKETCH4_W, SKETCH4_H)
        with Locations((8.649617143, 36.967092898)):
            Rectangle(SKETCH4_W, SKETCH4_H)
        with Locations((8.649617143, 21.467092898)):
            Rectangle(SKETCH4_W, SKETCH4_H)
        with Locations((11.149617143, 21.467092898)):
            Rectangle(SKETCH4_W, SKETCH4_H)
        with Locations((11.149617143, 17.155092898)):
            Rectangle(SKETCH4_W, SKETCH4_H)
        with Locations((8.649617143, 17.155092898)):
            Rectangle(SKETCH4_W, SKETCH4_H)
        with Locations((11.149617143, 1.655092898)):
            Rectangle(SKETCH4_W, SKETCH4_H)
        with Locations((8.649617143, 1.655092898)):
            Rectangle(SKETCH4_W, SKETCH4_H)
        with Locations((-8.662382857, 1.655092898)):
            Rectangle(SKETCH4_W, SKETCH4_H)
        with Locations((-11.162382857, 1.655092898)):
            Rectangle(SKETCH4_W, SKETCH4_H)
        with Locations((-8.662382857, 17.155092898)):
            Rectangle(SKETCH4_W, SKETCH4_H)
        with Locations((-11.162382857, 17.155092898)):
            Rectangle(SKETCH4_W, SKETCH4_H)
        with Locations((-8.662382857, 21.467092898)):
            Rectangle(SKETCH4_W, SKETCH4_H)
        with Locations((-11.162382857, 21.467092898)):
            Rectangle(SKETCH4_W, SKETCH4_H)
        with Locations((-8.662382857, 36.967092898)):
            Rectangle(SKETCH4_W, SKETCH4_H)
        with Locations((-11.162382857, 36.967092898)):
            Rectangle(SKETCH4_W, SKETCH4_H)
        with Locations((-28.474382857, 17.155092898)):
            Rectangle(SKETCH4_W, SKETCH4_H)
        with Locations((-30.974382857, 17.155092898)):
            Rectangle(SKETCH4_W, SKETCH4_H)
        with Locations((-30.974382857, 21.467092898)):
            Rectangle(SKETCH4_W, SKETCH4_H)
        with Locations((-28.474382857, 21.467092898)):
            Rectangle(SKETCH4_W, SKETCH4_H)
        with Locations((-28.474382857, 36.967092898)):
            Rectangle(SKETCH4_W, SKETCH4_H)
        with Locations((-30.974382857, 36.967092898)):
            Rectangle(SKETCH4_W, SKETCH4_H)
        with Locations((-28.474382857, 1.655092898)):
            Rectangle(SKETCH4_W, SKETCH4_H)
        with Locations((-30.974382857, 1.655092898)):
            Rectangle(SKETCH4_W, SKETCH4_H)
        Polygon((-33.875382857, -1.906907102), (-33.875382857, -3.406907102), (-31.375382857, -3.406907102), (-28.875382857, -3.406907102), (-28.875382857, -1.906907102), align=None)
        with Locations((-32.625382857, -18.156907102)):
            Rectangle(SKETCH4_W, SKETCH4_H)
        with Locations((-30.125382857, -18.156907102)):
            Rectangle(SKETCH4_W, SKETCH4_H)
        with Locations((-32.625382857, -22.468907102)):
            Rectangle(SKETCH4_W, SKETCH4_H)
        with Locations((-30.125382857, -22.468907102)):
            Rectangle(SKETCH4_W, SKETCH4_H)
        with Locations((-30.125382857, -37.968907102)):
            Rectangle(SKETCH4_W, SKETCH4_H)
        with Locations((-32.625382857, -37.968907102)):
            Rectangle(SKETCH4_W, SKETCH4_H)
    extrude(amount=-CUT_EXTRUDE2_DEPTH, mode=Mode.SUBTRACT)


solid = part.part
